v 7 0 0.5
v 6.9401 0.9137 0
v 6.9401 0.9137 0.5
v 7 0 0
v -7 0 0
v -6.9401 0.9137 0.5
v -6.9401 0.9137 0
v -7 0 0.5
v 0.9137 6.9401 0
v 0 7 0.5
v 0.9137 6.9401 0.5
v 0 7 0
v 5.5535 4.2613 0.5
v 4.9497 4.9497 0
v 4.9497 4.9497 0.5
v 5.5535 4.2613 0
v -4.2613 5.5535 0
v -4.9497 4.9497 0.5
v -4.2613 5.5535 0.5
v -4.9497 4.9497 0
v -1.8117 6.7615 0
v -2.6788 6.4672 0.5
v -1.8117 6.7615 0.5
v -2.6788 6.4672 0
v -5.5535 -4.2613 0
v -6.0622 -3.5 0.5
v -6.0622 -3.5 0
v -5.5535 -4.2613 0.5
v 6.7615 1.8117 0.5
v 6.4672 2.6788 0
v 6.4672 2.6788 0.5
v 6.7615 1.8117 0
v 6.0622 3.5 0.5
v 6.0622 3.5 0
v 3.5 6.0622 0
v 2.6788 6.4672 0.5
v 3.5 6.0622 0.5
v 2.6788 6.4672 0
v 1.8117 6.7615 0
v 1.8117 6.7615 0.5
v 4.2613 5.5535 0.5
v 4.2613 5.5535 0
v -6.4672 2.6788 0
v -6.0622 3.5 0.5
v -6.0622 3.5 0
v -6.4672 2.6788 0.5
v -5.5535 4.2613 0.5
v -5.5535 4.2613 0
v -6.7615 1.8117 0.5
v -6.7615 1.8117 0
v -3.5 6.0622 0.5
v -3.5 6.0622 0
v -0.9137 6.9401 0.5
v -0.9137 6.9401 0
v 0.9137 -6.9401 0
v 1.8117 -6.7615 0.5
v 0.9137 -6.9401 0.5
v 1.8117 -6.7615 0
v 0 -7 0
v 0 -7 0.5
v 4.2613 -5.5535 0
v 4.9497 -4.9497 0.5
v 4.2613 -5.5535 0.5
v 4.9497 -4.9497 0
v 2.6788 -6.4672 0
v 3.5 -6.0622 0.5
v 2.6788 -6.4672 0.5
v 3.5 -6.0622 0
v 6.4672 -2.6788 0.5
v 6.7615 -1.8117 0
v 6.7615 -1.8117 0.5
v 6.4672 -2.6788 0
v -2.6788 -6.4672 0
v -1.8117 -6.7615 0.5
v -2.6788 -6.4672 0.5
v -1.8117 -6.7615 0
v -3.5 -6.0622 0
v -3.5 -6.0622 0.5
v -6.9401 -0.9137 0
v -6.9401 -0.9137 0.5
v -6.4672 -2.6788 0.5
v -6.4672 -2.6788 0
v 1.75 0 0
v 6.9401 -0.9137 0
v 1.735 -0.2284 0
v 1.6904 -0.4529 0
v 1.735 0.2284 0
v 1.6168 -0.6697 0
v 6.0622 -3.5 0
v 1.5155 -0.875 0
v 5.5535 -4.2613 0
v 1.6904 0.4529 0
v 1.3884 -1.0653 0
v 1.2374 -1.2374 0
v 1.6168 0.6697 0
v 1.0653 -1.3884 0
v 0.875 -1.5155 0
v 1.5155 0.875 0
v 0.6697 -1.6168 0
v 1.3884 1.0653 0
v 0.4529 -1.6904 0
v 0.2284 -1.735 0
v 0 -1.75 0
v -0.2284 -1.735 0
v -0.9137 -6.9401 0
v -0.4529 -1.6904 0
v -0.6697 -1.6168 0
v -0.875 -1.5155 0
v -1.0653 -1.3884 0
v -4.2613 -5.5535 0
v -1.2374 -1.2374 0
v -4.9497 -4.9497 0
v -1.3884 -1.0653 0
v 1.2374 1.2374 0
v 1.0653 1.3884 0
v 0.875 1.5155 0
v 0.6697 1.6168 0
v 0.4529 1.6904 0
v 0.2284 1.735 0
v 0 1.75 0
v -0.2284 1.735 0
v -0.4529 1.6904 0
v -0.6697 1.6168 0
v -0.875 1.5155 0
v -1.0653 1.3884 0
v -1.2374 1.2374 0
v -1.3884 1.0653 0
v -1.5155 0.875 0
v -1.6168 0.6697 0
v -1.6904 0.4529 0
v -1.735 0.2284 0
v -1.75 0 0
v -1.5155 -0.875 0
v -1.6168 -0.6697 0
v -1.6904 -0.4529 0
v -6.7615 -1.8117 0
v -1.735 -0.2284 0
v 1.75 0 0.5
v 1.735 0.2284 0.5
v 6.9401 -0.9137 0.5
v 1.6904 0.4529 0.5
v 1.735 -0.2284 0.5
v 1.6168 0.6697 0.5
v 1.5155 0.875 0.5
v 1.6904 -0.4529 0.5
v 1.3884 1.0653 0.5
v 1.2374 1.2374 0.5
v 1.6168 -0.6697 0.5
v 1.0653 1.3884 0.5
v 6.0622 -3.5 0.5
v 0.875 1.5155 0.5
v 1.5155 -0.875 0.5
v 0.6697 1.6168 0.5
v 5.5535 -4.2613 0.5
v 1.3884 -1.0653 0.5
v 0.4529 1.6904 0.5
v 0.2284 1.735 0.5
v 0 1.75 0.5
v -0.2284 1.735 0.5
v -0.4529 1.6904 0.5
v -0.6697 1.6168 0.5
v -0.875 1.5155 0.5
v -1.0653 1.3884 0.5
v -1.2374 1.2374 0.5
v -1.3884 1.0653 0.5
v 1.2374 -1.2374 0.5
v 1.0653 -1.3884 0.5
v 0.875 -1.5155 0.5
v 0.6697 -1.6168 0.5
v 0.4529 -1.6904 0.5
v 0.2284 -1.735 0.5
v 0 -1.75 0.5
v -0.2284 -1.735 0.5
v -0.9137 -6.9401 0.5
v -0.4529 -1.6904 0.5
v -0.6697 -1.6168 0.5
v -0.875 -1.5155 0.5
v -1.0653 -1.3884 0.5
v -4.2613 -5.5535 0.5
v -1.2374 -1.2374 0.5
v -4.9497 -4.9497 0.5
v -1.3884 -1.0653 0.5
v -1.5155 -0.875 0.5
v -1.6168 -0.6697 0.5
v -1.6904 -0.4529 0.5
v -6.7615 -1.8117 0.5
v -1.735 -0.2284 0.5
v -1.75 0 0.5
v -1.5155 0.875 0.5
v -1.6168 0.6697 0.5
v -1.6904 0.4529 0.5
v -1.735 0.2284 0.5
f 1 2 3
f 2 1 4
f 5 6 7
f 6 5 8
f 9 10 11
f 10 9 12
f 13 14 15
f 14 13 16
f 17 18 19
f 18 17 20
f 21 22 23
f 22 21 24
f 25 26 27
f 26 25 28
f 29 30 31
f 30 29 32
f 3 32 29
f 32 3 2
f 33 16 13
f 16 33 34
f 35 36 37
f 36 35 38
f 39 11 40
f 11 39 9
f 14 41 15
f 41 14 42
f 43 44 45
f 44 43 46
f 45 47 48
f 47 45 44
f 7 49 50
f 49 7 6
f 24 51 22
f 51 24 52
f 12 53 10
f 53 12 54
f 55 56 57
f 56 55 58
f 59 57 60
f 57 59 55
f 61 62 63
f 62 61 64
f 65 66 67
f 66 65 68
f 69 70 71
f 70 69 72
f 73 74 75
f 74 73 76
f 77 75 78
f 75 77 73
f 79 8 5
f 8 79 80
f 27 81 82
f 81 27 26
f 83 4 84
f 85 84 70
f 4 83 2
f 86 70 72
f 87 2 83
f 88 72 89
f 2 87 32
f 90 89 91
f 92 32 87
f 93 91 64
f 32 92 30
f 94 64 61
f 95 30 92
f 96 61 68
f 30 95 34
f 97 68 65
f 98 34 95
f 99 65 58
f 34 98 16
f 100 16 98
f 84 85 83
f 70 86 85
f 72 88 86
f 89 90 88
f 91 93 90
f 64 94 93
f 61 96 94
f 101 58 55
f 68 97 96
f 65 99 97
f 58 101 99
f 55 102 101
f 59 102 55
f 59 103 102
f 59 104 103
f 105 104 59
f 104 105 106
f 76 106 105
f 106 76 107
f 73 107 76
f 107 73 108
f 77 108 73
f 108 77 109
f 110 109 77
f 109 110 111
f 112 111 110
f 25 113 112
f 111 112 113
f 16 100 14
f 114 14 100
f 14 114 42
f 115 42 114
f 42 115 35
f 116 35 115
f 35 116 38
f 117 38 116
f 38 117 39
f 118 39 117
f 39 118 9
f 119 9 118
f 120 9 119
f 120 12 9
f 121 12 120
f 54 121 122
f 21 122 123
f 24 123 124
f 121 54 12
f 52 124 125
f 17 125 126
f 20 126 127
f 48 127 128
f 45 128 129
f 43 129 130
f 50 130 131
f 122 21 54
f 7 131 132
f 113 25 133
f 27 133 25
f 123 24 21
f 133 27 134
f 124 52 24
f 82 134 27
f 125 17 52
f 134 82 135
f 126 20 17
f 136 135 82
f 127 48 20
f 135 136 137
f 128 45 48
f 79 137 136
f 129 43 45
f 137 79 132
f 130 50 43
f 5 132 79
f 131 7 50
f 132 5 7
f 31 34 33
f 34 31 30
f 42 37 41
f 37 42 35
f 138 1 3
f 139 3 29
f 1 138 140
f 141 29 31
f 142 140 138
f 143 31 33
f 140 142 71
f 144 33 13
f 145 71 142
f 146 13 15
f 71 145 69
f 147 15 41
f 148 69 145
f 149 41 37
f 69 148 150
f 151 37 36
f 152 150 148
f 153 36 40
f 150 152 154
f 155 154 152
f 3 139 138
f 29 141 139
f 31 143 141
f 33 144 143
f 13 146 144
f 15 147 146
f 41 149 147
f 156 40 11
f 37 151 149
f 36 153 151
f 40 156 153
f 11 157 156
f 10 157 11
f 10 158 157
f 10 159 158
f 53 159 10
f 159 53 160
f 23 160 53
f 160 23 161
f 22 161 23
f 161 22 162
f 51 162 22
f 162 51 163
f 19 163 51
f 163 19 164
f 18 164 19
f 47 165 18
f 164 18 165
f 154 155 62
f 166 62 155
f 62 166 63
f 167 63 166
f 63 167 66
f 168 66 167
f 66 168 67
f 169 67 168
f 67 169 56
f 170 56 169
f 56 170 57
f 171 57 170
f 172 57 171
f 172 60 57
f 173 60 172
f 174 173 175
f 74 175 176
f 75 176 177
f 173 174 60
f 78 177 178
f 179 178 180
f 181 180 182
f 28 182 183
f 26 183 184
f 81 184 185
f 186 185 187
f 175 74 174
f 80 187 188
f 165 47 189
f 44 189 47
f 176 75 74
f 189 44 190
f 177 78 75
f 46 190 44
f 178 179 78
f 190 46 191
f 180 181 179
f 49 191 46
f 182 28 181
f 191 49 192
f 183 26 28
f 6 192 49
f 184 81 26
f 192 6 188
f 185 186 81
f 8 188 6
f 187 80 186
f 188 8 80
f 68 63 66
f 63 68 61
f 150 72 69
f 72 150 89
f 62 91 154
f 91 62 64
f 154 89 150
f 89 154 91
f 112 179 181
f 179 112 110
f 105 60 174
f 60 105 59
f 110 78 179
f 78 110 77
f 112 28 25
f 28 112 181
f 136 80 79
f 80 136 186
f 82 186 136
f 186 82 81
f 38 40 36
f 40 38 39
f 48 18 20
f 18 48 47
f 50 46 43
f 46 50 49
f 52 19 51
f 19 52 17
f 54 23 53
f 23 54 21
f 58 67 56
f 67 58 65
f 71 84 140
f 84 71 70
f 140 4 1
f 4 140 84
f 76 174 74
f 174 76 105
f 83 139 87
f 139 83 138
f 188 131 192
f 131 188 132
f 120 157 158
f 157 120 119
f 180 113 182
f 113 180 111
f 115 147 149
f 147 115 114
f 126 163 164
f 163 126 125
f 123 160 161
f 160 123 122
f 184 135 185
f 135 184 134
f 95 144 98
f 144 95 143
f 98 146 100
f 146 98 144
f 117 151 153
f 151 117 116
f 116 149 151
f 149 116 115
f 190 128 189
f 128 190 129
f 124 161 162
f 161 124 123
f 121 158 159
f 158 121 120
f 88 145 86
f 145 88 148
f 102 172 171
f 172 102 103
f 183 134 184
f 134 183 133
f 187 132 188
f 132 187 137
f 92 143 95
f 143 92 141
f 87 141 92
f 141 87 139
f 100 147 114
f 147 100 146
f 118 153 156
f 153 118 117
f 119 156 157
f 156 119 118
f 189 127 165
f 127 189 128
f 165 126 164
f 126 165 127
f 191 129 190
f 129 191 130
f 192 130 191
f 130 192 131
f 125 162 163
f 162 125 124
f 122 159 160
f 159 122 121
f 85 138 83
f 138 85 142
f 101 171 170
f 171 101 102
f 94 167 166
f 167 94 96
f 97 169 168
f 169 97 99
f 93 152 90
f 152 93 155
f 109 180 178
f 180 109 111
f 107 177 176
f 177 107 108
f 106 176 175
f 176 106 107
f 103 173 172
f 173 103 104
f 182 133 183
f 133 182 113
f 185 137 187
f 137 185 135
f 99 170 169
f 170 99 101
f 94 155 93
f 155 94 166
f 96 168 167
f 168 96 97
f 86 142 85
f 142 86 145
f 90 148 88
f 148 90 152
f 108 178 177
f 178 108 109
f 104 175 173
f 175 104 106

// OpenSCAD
// Gen-DM — assembly gap shim, h = run_clear (rotor face -> flange); copper is inside the flanges
include <parameters.scad>;
$fn = 48;
difference() {
    cylinder(d=spacer_pad_od, h=gap_spacer_h);
    translate([0, 0, -0.1]) cylinder(d=spacer_pad_id, h=gap_spacer_h + 0.2);
}
